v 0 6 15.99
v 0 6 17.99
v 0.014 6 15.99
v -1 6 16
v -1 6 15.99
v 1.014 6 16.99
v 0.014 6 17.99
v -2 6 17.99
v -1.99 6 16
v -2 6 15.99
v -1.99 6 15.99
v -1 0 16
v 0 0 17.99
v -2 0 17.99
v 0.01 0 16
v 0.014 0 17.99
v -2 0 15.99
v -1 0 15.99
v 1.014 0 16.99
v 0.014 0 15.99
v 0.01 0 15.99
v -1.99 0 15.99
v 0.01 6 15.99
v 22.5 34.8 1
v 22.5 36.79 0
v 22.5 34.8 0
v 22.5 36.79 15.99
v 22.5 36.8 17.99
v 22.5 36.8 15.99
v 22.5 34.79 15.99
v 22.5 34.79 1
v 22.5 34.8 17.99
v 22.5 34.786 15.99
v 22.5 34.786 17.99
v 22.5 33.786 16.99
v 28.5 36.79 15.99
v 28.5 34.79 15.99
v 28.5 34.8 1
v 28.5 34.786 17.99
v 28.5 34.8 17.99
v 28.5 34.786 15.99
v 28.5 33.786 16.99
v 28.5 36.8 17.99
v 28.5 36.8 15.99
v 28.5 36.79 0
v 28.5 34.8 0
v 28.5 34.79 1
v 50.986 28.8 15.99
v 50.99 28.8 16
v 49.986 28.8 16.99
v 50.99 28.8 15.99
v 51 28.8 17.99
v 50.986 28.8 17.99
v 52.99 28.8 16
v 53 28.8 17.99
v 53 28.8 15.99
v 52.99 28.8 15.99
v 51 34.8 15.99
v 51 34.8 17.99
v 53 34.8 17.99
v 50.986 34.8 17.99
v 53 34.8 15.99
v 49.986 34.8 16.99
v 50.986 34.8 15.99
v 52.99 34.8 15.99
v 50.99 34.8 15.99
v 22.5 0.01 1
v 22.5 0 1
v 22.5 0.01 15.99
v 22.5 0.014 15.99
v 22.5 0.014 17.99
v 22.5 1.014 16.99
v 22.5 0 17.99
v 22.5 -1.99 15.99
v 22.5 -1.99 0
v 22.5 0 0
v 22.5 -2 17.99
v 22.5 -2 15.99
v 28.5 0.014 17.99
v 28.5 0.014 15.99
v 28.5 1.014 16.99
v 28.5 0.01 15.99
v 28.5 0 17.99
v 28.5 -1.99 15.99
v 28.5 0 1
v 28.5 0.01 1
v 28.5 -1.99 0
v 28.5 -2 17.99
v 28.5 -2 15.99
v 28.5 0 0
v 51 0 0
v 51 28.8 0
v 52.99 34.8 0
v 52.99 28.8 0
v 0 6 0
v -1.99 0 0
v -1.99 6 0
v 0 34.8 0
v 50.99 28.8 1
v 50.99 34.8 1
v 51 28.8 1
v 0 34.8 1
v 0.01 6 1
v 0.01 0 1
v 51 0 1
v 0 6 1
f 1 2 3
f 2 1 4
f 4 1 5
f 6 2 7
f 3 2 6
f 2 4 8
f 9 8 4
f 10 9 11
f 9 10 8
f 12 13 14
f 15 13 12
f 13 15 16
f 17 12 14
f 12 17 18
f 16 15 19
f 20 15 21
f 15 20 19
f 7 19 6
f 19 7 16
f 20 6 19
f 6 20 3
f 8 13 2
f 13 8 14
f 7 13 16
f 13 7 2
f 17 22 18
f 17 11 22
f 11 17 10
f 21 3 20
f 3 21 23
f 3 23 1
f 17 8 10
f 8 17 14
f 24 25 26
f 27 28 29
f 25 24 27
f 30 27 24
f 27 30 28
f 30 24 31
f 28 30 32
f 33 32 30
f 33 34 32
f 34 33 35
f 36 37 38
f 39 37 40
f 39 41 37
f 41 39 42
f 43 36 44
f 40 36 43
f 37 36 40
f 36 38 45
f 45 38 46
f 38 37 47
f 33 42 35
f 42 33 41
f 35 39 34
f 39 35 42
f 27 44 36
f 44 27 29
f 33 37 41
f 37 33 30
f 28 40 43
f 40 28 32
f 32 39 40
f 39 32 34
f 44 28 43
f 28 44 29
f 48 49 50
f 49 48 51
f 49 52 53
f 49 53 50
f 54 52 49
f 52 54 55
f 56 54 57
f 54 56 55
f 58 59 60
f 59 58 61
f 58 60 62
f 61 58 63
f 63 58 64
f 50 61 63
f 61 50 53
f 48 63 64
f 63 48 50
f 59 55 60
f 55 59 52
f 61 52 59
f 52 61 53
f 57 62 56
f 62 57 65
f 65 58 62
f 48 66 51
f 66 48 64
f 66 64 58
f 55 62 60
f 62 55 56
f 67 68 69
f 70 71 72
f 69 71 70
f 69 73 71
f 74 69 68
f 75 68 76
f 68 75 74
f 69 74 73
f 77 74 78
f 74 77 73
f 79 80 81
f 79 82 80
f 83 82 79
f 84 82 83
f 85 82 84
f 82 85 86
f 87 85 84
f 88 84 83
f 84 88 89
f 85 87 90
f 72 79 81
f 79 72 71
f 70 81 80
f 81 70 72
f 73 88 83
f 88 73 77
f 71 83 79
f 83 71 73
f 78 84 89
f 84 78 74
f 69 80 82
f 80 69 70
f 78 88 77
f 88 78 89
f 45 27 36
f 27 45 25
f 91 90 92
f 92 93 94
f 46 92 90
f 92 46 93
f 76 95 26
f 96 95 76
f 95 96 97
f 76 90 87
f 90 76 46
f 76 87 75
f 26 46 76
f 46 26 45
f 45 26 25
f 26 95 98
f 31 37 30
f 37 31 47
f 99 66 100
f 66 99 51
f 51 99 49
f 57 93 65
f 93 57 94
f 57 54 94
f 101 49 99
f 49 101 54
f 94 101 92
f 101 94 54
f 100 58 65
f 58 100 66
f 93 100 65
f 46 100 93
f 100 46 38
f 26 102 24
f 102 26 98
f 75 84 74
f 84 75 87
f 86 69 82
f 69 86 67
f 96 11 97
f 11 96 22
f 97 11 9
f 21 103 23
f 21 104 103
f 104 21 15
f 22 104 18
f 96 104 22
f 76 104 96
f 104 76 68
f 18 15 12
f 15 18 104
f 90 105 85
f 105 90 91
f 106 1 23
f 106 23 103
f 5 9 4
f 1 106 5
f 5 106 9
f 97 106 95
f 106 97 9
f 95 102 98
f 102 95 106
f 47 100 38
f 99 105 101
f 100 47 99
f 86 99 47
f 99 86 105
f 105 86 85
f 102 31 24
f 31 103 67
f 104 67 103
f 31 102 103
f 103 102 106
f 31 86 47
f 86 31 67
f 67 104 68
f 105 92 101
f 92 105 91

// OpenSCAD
// file: ../../lib/utils.scad
// Cube with rounded corners
// roundedCornerCube (50,50,4);
module roundedCornerCube(length, width, thickness){

        hull()
        {
            translate([length/2 - 2, width/2 - 2, 0]) cylinder(r=2, h=thickness, $fn=50, center=true);
            translate([length/2 - 2, -width/2 + 2, 0]) cylinder(r=2, h=thickness, $fn=50, center=true);
            translate([-length/2 + 2, width/2 - 2, 0]) cylinder(r=2, h=thickness, $fn=50, center=true);
            translate([-length/2 + 2, -width/2 + 2, 0]) cylinder(r=2, h=thickness, $fn=50, center=true);
        }

}

// Hollow cube with rounded corners. Will look like a frame with rounded con
// hollowRoundedCornerCube(50,70,4,2);
module hollowRoundedCornerCube(length, width, thickness, wallthickness)
{
    difference()
    {
        roundedCornerCube(length,width,thickness);
        roundedCornerCube(length-(wallthickness*2),width-(wallthickness*2),thickness);
    }
}

/*
module cylinderWithHandle(radius, thickness)
{
    rotate_extrude($fn=100)
        polygon( points = [[0,0], [radius,0], [radius,thickness] , [1,thickness], [2,thickness + 2] , [2,thickness + 6],[0,thickness + 6]] );
}
*/


// hollow cylinder
// hollowCylinder(radius, height, wallThickness)
// radius : radius to outter wall
// wallThickness : Thickness of wall
module hollowCylinder(radius, height, wallThickness)
{

    difference()
    {
        cylinder(h=height, r1=radius, r2=radius);
        cylinder(h=height, r1=radius - wallThickness, r2=radius - wallThickness);
    }
}


// hollow cylinders
// hollowCylinders(20, 10, 2, 2, 2)
// radius : radius to outer wall
// gapsSize : size of gap between each rings
// minradius : radius of the smallest ring
module hollowCylinders(radius, height, wallThickness, gapSize, minRadius)
{
    for (i = [radius : -(gapSize + wallThickness) : minRadius])
    {
       //echo (i);
       hollowCylinder(i,height,wallThickness);
    }
}

//
// b = bottom diameter
// t = top diameter
// h = height
module cone(b, t, h)
{
    cylinder(h=h, r1=b/2, r2=t/2, $fn=100);
}

// hollowCone(10,4,20, 2)
module hollowCone(bottomRadius, topRadius, height, wallThickness)
{
    difference()
    {
        cylinder(h=height, r1=bottomRadius, r2=topRadius, $fn=100);
        cylinder(h=height, r1=bottomRadius - wallThickness, r2=topRadius - wallThickness, $fn=100);
    }
}


// w = width between flat surface
// h = height
module hex (w=10, h=2){
  cylinder (r=w/2, h=h, center=true, $fn=6);
}

// hollowCone(10,4,20, 2)
module hollowHex(w=10, h=2, th=2)
{
    difference()
    {
        cylinder (r=w/2, h=h, center=true, $fn=6);
        cylinder (r=w/2 - th, h=h, center=true, $fn=6);
    }
}

// h : height
// ns : number of sides for base
// br : bottom radius
// tr : top radius
// ro : rotation in degree between bottom and top
// sl : slice layer. high value give smooth appearence
module twistExtrude(h=50,ns=6,br=20,tr=20,ro=100,sl=5)
{

	linear_extrude(height = h, twist  = ro,	slices = sl, scale  = tr/br)
		circle(r=br, $fn=ns);
}


// h : height
// ns : number of sides for base
// br : bottom radius
// tr : top radius
// ro : rotation in degree between bottom and top
// sl : slice layer. high value give smooth appearence
// wt : wall thickness
module hollowTwistExtrude(h=50,ns=6,br=20,tr=20,ro=100,sl=5,wt=1)
{
	difference()
	{
		linear_extrude(height = h, twist  = ro,	slices = sl, scale  = tr/br)
			circle(r=br, $fn=ns);

    translate([0,0,-.01])
		linear_extrude(height = h + .1, twist  = ro,	slices = sl, scale  = tr/br)
			circle(r=br - wt, $fn=ns);
	}
}


///////////////////////////////////////////////////////////////////////////////////////////////////////////////////

// honeycomb tiles
// honeycombSquare(100,100,4,10,2);
module honeycombTiles(length, width,thickness,rad,wallThickness)
{
    //thickness = 4;
    //rad = 10;
    //wallThickness = 2;
    //length = 100;
    //width = 100;

    for (w=[0: width/rad])
    {

        if (w % 2 == 0)
        {
            //cylinder($fn=6, r=rad, h=2);
            for (i = [0 : length/((rad*2) + (wallThickness*2))])
            {
              translate([rad*(3*i) + (wallThickness*2)*i,w*rad,0]) cylinder($fn=6, r=rad, h=thickness);

              //translate([rad*6 + (wallThickness*2)*2,0,0]) cylinder($fn=6, r=10, h=2);
              //translate([rad*9 + (wallThickness*2)*3,0,0]) cylinder($fn=6, r=10, h=2);
            }
        }

        if (w % 2 == 1)
        {
            for (j = [1 : 2 : (length/(rad + wallThickness))])
            {
              translate([(rad*1.5) *j + wallThickness *j , (w*rad) + wallThickness/2 ,0])  cylinder($fn=6, r=rad, h=thickness);
                //translate([(rad*1.5) *3 + wallThickness *3 ,10,0]) circle($fn=6, r=10);
                //translate([(rad*1.5) *5 + wallThickness *5 ,10,0]) circle($fn=6, r=10);
            }
        }
    }
}

// honeycomb square
// A square area with hollow honeycomb design
// honeycombSquare(100,100,4,10,2);
module honeycombSquare(length, width, thickness, cellRad,wallThickness)
{
    difference()
    {
        cube([length,width,thickness], center=true);
        translate([-length/2,-width/2, -thickness/2]) honeycombTiles(length,width,thickness,cellRad,wallThickness);
    }
}

//honeycomb(length, width, height, cell_size, wall_thickness);
//honeycomb(50, 50, 4, 10, 1);
//hollowRoundedCornerCube(50,70,4,2);

//hollowCylinder(10,20,2);

//hollowCylinders(20, 10, 2, 2, 2);
//cone(10,2,20);

// hollowCone(10,4,20, 2);

// honeycombSquare(40,40,2,5,2);


module edgeClamp(l=10)
{
   difference()
   {
    translate([0,.6,0]) rotate([45,0,0]) cube([l,2,2], center=true);
    translate([0,.6,1.5]) cube([l + .1,1,1], center=true);
    translate([0,.6,-1.5]) cube([l + .1,1,1], center=true);
   }
   cube([l,2,2], center=true);
}

cube([10,2,2], center=true);
translate([0,0,2]) edgeClamp();
// main file
use <../../lib/utils.scad>

/*
receiverLength = 52;
receiverWidth = 34.5;
receiverThickness = 15.5;
*/


// h = height
// wt = wall thickness
// sw = side stop width
// bl =  base inside length
// bw = base inside width
// bt = base thickness
module receiver_sideStops(h,wt, sw, bl,bw,bt)
{

  //when in front view
  //top
  translate([(bl-sw)/2,bw - .01,0]) cube([sw,wt,h]);
  translate([bl/2,bw + 1,h + 1 - .01]) rotate([180,0,0]) edgeClamp(l=sw);

  // right
  translate([bl - .01,bw-sw,0]) cube([wt,sw,h]);
  translate([bl + 1,bw - (sw/2),h + 1 - .01]) rotate([0,0,90]) edgeClamp(l=sw);

  //bottom
  translate([(bl-sw)/2,-2 + .01,0]) cube([sw,wt,h]);
  translate([bl/2,-1,h + 1 - .01]) edgeClamp(l=sw);

  //left
  translate([-2 + .01,0,0]) cube([wt,sw,h]);
  translate([-1,sw/2,h + 1 - .01]) rotate([0,0,-90]) edgeClamp(l=sw);

}

// l =  length of receiver
// w = width of receiver
// h = height of receiver
// t = thickness of base
module receiver_holder(l=receiver_holder_l(), w=receiver_holder_w() ,h=receiver_holder_h() ,  t=receiver_holder_t() )
{
  cube([l,w,t]);
  receiver_sideStops(h= (h + t),wt=2,sw=6 , bl=l , bw=w, bt=t);

  %receiver_sample();
}

module receiver_sample()
{
  translate([0,0,receiver_holder_t()]) cube([receiver_holder_l(),receiver_holder_w(),receiver_holder_h()]);
}

function receiver_holder_l() = 51;
function receiver_holder_w() = 34.8;
function receiver_holder_h() = 15;
function receiver_holder_t() = 1;


receiver_holder(l=receiver_holder_l(), w=receiver_holder_w() , h=receiver_holder_h(), t=receiver_holder_t());
